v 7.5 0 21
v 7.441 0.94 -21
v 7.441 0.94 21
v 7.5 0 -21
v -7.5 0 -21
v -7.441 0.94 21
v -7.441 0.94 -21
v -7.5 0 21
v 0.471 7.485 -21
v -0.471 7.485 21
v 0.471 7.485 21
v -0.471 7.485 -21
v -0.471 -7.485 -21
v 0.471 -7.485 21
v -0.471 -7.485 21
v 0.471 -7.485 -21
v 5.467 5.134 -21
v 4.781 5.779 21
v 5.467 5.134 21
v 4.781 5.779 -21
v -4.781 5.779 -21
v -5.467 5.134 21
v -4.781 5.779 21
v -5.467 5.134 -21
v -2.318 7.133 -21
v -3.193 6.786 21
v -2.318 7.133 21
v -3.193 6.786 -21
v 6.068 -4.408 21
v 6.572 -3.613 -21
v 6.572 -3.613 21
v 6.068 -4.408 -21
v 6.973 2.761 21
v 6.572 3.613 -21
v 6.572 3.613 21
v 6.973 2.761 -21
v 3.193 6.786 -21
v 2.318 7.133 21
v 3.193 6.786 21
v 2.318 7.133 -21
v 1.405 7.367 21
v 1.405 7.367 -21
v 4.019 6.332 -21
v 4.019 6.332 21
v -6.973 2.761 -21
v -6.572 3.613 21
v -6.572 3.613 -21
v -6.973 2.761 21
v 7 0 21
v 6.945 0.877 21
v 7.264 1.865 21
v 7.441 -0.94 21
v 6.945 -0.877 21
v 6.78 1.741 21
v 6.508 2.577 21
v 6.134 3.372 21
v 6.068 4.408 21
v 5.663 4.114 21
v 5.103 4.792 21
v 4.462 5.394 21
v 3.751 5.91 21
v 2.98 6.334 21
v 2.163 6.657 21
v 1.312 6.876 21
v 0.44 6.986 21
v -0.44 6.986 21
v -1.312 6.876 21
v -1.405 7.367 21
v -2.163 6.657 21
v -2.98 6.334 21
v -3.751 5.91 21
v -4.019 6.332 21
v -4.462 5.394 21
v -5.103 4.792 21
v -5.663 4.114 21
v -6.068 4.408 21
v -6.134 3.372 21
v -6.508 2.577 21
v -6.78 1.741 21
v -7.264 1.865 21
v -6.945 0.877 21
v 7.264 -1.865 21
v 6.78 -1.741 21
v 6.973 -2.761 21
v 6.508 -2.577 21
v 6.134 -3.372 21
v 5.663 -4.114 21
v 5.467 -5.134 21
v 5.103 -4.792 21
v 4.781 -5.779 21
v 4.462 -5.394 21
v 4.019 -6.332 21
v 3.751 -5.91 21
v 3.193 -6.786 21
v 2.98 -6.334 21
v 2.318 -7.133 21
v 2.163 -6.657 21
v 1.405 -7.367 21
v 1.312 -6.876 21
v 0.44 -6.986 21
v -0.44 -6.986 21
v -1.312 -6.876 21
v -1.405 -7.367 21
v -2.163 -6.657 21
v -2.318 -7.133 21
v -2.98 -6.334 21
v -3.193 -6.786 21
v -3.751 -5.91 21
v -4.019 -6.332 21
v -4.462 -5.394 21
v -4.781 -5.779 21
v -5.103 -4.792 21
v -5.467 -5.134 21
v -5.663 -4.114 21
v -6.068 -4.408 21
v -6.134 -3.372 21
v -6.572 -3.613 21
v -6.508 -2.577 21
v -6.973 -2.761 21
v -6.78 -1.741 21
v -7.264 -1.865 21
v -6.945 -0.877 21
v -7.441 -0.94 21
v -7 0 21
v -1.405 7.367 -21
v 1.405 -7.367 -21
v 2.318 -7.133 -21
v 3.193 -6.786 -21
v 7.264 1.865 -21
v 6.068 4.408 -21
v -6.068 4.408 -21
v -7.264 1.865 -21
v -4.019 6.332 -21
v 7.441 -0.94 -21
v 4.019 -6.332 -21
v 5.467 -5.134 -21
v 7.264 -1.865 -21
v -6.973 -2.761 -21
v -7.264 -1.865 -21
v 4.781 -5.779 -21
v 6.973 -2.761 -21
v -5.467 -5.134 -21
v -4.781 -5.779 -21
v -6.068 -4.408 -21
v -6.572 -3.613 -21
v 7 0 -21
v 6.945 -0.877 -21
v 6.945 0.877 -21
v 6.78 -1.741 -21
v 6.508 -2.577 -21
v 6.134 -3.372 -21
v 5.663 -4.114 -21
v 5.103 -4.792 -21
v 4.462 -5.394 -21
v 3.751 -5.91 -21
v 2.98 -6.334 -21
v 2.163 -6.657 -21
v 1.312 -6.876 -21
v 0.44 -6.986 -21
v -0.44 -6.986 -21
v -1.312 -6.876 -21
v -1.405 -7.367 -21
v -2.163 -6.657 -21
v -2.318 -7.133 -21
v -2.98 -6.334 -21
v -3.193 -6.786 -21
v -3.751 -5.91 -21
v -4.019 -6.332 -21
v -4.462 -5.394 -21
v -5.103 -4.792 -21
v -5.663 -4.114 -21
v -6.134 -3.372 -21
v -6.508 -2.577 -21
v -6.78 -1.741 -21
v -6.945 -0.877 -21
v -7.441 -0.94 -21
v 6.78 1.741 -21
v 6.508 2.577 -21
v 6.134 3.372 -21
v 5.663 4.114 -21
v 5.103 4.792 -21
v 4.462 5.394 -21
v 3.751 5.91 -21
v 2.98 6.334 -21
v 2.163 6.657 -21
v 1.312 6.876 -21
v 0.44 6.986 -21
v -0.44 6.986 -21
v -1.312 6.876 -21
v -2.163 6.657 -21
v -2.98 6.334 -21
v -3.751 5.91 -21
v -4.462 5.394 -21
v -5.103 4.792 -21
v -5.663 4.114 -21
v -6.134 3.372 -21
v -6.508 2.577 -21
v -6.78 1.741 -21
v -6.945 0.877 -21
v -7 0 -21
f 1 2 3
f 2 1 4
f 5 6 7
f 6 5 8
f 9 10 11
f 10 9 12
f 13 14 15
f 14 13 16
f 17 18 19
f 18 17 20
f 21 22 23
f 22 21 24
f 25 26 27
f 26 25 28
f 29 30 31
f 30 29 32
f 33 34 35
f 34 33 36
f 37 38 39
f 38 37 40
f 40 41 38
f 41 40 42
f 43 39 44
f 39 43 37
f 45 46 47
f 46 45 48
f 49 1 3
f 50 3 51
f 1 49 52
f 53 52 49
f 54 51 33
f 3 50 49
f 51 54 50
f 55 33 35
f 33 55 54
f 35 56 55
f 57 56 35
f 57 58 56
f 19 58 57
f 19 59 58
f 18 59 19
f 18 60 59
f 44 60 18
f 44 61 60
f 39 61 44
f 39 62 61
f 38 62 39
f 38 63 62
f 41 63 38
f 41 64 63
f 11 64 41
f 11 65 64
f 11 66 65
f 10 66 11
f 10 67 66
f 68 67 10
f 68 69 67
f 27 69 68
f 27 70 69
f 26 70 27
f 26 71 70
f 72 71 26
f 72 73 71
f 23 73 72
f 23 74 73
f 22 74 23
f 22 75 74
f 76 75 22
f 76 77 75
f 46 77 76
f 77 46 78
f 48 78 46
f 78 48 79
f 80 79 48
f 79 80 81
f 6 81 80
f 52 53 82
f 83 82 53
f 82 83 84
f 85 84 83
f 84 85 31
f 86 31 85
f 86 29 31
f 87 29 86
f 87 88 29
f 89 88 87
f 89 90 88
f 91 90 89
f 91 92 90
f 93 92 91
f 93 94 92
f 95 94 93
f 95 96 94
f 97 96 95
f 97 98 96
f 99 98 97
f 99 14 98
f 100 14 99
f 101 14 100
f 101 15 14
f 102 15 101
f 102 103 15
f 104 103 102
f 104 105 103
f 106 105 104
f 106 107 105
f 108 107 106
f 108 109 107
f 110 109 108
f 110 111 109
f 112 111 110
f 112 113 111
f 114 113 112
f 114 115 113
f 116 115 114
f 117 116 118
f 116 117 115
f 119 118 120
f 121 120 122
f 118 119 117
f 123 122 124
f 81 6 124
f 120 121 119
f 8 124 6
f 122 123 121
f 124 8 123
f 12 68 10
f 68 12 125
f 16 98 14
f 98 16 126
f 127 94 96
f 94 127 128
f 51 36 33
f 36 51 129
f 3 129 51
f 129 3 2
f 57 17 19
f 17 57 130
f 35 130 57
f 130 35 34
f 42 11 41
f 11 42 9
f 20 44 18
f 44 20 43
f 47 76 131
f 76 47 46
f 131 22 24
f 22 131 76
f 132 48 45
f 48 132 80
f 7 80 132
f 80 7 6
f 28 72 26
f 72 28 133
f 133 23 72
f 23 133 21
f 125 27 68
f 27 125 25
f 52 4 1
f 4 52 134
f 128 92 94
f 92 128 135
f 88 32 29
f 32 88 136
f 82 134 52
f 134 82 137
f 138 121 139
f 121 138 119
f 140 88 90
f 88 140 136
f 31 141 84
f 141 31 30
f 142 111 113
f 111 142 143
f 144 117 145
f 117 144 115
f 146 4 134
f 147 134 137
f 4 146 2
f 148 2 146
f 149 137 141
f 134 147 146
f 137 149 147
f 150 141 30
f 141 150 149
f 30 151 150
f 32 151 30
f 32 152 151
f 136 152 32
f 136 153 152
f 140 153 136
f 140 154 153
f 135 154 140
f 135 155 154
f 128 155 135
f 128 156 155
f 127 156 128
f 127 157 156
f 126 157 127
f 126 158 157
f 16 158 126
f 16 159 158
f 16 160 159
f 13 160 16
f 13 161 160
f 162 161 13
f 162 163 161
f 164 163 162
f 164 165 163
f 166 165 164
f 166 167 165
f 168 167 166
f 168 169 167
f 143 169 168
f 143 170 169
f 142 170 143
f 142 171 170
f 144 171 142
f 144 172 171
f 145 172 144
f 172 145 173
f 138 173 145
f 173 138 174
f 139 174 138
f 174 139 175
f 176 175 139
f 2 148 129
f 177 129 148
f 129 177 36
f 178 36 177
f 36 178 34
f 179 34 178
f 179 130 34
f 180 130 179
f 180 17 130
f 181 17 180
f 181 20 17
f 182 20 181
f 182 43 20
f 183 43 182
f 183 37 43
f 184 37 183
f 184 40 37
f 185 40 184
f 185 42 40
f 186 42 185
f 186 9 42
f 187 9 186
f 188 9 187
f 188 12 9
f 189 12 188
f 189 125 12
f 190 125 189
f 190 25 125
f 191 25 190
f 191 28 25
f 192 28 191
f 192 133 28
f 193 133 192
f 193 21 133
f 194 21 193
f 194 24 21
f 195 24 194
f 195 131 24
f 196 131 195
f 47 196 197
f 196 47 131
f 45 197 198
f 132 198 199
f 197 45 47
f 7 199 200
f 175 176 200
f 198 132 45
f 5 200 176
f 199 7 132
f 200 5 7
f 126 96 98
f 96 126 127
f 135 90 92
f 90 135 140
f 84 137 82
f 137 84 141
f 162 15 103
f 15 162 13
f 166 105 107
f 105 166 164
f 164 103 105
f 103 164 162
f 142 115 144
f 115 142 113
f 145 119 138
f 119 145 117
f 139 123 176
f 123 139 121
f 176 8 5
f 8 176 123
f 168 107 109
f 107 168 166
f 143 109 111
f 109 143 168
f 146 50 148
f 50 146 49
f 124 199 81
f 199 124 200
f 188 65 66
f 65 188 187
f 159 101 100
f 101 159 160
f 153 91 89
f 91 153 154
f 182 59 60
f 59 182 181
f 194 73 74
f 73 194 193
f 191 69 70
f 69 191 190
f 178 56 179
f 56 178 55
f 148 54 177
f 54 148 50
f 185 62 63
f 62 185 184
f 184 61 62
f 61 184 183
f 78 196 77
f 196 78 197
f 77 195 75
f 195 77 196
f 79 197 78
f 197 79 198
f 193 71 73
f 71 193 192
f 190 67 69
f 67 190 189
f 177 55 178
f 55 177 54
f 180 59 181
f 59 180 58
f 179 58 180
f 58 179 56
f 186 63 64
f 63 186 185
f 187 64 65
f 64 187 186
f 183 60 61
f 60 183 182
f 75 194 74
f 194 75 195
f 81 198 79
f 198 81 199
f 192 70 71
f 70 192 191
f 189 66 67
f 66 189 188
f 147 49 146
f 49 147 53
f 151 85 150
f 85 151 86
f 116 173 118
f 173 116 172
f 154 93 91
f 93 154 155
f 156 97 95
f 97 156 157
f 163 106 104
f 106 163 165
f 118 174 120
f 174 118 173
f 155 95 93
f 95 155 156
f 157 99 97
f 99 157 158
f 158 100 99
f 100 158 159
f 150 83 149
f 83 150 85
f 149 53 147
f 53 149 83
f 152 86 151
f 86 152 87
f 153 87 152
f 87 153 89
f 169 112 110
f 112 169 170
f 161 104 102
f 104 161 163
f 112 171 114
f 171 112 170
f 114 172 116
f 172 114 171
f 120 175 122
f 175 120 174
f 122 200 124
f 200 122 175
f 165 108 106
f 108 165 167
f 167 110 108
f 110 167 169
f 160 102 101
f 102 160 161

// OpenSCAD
$fn = 50;


difference() {
	union() {
		translate(v = [0, 0, -21.0000000000]) {
			cylinder(h = 42, r = 7.5000000000);
		}
	}
	union() {
		translate(v = [0, 0, -100.0000000000]) {
			cylinder(h = 200, r = 7);
		}
	}
}
